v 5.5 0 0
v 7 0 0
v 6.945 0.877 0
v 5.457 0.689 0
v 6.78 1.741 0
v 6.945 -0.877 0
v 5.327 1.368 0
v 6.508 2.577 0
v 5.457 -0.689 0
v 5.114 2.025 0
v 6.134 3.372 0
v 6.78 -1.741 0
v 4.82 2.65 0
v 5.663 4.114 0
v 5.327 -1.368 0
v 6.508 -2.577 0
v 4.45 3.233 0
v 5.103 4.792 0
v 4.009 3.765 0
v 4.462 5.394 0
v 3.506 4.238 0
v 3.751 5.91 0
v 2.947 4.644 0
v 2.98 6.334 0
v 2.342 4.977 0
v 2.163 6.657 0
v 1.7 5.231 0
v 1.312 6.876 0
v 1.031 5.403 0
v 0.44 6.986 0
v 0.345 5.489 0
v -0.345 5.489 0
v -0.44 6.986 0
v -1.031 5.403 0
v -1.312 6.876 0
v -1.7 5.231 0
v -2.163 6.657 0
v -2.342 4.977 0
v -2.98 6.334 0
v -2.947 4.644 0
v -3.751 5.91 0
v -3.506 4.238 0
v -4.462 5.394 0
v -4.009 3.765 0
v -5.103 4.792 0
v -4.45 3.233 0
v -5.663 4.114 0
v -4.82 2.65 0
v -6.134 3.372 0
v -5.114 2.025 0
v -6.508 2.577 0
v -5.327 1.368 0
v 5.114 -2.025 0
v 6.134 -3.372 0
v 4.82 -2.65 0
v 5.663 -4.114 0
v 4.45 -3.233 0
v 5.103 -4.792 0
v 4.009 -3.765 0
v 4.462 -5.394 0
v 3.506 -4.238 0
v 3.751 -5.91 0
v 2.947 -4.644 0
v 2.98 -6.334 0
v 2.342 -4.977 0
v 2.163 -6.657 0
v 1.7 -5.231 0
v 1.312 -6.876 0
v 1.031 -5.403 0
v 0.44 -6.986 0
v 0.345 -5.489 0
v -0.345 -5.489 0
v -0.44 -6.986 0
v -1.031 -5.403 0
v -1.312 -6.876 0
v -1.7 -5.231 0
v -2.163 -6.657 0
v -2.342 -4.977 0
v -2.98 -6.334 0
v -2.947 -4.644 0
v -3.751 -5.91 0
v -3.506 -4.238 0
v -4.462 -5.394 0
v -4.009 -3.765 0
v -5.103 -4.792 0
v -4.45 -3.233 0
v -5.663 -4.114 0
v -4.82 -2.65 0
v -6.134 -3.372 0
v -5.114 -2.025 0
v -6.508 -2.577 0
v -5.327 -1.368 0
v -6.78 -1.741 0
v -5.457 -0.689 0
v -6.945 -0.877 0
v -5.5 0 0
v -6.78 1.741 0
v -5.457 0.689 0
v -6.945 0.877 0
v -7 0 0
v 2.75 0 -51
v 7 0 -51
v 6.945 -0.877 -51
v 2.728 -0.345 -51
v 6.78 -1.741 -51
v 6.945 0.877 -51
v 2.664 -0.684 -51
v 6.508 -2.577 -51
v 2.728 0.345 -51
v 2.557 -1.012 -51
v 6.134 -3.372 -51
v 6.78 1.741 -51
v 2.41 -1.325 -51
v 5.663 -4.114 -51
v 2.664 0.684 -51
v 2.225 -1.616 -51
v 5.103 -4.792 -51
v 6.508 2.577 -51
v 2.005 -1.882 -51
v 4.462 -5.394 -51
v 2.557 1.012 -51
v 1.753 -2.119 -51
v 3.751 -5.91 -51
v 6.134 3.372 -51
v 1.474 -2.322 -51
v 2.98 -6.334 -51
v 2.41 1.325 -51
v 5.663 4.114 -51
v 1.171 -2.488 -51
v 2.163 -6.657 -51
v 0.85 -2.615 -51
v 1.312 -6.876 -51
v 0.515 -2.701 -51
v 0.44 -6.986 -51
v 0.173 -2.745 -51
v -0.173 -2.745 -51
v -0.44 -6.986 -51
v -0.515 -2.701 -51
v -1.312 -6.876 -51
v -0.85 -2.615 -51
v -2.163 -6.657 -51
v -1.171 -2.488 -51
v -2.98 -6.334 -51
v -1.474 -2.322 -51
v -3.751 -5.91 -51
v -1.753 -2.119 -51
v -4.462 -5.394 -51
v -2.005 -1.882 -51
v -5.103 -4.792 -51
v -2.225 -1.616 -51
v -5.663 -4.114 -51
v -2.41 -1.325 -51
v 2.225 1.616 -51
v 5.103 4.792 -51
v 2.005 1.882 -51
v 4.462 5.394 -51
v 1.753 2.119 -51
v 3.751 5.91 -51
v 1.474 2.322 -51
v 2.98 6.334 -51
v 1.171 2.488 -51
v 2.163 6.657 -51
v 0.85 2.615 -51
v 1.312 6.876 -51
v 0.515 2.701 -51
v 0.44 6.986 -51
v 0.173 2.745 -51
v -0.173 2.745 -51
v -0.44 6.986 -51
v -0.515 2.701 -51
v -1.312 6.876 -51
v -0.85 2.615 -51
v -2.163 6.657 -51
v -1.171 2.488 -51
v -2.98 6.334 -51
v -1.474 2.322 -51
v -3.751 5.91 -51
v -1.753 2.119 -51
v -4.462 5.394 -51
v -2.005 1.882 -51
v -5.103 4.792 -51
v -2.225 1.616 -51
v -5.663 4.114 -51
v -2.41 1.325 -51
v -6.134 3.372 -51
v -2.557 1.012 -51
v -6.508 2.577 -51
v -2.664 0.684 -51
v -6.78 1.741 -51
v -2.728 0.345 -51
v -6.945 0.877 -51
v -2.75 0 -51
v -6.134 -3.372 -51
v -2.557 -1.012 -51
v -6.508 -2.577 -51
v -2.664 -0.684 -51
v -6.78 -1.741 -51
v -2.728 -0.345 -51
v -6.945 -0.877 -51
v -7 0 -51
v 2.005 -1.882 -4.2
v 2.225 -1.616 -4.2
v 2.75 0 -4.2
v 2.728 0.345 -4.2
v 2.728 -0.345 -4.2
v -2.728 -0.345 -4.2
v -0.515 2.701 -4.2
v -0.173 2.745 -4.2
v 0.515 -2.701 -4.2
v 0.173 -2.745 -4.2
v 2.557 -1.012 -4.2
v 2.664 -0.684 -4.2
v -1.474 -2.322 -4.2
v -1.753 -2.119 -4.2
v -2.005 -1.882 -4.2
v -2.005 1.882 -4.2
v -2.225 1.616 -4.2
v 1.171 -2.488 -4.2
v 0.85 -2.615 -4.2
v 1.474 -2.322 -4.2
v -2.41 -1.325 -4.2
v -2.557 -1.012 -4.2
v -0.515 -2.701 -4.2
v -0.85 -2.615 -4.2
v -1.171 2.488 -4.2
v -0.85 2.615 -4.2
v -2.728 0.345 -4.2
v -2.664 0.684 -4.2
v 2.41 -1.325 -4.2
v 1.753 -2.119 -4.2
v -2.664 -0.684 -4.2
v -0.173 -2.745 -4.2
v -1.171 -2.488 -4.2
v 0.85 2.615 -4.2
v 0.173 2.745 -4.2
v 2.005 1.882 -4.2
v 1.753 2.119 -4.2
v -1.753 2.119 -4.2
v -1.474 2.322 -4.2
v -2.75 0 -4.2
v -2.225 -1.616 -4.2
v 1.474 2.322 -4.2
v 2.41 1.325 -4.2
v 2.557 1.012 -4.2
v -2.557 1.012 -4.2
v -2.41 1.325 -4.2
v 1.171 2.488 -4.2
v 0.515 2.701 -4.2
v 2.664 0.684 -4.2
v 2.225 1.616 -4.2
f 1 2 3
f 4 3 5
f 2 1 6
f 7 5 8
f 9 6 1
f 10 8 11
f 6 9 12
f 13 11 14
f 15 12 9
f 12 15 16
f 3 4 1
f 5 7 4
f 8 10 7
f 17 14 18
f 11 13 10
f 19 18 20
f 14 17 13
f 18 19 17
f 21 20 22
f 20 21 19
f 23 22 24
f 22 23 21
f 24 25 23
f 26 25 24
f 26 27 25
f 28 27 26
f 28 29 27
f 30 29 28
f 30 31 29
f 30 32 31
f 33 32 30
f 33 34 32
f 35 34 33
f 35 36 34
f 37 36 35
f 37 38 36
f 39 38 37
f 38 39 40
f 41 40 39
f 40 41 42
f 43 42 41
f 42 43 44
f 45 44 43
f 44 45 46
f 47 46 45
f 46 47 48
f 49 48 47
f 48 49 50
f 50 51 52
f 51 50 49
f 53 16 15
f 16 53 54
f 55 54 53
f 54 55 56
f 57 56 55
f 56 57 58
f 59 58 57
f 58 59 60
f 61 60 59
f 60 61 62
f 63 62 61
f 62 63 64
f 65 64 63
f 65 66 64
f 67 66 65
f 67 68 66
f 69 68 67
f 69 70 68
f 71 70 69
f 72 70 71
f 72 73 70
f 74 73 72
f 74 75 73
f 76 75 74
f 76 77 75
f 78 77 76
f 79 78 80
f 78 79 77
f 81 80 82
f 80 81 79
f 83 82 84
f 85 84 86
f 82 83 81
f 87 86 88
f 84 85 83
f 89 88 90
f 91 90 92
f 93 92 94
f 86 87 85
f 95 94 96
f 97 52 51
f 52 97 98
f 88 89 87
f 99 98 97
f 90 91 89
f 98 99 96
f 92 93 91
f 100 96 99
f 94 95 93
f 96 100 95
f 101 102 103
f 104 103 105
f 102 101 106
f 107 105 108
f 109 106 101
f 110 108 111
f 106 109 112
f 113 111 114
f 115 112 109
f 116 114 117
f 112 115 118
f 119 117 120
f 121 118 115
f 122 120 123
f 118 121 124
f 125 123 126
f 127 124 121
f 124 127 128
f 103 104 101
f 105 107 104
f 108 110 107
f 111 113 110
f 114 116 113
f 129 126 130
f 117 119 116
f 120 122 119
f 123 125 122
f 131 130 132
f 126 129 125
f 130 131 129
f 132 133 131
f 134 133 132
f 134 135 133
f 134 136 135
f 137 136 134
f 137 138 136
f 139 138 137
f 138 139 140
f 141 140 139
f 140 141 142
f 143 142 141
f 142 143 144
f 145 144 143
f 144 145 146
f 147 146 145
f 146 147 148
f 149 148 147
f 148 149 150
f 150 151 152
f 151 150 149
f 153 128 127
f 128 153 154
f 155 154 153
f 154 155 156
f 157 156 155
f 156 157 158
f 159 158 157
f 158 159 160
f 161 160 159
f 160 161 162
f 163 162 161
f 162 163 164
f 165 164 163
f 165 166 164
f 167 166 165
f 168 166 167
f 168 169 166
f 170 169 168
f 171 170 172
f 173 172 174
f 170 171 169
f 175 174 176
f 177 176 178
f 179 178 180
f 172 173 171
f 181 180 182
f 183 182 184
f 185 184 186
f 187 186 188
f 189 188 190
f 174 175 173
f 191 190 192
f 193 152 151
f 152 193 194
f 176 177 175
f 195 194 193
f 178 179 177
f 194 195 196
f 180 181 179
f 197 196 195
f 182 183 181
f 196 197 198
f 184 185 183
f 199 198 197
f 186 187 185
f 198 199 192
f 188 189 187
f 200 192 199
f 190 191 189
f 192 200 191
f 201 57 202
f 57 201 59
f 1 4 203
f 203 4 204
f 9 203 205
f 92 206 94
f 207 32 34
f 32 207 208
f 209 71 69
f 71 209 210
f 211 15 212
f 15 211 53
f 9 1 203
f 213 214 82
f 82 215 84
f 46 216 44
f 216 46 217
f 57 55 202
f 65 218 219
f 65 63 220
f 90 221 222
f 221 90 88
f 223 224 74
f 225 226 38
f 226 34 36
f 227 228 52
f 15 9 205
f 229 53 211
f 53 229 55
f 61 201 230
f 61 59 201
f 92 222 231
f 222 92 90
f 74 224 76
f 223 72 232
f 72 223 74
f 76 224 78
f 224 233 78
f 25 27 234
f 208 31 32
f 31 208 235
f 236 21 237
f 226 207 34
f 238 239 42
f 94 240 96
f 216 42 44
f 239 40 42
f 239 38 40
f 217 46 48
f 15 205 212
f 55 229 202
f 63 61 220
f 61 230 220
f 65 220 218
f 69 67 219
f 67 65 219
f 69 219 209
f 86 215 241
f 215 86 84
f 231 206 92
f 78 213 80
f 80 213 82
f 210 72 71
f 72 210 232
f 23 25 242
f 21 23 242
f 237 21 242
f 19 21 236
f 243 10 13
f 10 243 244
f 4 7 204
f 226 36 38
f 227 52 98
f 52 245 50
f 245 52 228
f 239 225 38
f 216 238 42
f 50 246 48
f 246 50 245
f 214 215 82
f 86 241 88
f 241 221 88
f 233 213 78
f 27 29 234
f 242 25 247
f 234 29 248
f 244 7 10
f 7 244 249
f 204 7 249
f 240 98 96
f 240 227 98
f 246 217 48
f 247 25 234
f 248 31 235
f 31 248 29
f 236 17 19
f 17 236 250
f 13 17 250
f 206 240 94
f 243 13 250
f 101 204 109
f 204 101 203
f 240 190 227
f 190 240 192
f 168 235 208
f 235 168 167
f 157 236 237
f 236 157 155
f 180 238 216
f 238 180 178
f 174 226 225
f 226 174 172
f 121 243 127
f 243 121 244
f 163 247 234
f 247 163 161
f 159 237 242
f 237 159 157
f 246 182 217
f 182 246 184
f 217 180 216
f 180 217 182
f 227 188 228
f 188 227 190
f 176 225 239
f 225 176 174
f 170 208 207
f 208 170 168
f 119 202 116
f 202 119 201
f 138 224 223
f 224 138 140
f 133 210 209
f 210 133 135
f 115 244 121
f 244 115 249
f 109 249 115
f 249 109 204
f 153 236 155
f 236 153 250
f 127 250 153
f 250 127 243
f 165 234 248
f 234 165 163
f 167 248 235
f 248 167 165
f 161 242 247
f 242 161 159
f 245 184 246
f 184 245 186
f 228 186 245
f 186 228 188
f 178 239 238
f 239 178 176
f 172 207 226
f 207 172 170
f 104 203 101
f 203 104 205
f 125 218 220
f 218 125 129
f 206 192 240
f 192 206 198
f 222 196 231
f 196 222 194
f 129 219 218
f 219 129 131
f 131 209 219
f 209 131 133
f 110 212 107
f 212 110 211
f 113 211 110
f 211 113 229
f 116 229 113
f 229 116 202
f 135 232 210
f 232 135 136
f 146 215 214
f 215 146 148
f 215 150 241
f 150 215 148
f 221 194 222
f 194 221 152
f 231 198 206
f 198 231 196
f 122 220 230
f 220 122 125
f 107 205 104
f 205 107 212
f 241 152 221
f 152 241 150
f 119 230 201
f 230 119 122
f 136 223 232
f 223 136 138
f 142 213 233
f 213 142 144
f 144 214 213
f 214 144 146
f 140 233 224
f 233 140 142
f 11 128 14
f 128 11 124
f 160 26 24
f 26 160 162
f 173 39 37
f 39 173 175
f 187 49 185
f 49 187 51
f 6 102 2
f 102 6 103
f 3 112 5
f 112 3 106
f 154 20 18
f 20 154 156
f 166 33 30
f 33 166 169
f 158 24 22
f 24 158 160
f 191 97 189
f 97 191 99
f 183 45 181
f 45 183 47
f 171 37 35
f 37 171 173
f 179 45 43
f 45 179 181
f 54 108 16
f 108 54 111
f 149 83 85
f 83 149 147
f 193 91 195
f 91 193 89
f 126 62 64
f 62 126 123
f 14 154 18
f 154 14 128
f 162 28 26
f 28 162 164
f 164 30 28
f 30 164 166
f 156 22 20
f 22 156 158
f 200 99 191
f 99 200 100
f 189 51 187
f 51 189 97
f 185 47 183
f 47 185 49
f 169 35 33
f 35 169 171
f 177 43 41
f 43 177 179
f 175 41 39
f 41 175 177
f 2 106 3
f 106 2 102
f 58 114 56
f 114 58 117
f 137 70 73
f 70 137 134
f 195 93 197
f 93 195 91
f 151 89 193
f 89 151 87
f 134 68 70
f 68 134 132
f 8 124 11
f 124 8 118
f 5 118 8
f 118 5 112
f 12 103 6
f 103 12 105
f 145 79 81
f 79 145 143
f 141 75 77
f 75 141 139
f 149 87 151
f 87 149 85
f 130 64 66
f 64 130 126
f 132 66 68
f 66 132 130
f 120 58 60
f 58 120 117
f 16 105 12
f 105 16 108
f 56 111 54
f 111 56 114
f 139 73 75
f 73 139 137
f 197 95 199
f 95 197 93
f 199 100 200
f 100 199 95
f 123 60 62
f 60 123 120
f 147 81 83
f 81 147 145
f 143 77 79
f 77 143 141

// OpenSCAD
$fn = 50;


difference() {
	union() {
		translate(v = [0, 0, -51.0000000000]) {
			cylinder(h = 51, r = 7.0000000000);
		}
	}
	union() {
		translate(v = [0, 0, 0]) {
			rotate(a = [0, 0, 0]) {
				difference() {
					union() {
						#translate(v = [0, 0, -51.0000000000]) {
							cylinder(h = 51, r = 2.2500000000);
						}
						#translate(v = [0, 0, -4.2000000000]) {
							cylinder(h = 4.2000000000, r = 7.0000000000, r1 = 2.7500000000, r2 = 5.5000000000);
						}
						#translate(v = [0, 0, -51.0000000000]) {
							cylinder(h = 51, r = 2.7500000000);
						}
						#translate(v = [0, 0, -51.0000000000]) {
							cylinder(h = 51, r = 2.2500000000);
						}
					}
					union();
				}
			}
		}
	}
}
